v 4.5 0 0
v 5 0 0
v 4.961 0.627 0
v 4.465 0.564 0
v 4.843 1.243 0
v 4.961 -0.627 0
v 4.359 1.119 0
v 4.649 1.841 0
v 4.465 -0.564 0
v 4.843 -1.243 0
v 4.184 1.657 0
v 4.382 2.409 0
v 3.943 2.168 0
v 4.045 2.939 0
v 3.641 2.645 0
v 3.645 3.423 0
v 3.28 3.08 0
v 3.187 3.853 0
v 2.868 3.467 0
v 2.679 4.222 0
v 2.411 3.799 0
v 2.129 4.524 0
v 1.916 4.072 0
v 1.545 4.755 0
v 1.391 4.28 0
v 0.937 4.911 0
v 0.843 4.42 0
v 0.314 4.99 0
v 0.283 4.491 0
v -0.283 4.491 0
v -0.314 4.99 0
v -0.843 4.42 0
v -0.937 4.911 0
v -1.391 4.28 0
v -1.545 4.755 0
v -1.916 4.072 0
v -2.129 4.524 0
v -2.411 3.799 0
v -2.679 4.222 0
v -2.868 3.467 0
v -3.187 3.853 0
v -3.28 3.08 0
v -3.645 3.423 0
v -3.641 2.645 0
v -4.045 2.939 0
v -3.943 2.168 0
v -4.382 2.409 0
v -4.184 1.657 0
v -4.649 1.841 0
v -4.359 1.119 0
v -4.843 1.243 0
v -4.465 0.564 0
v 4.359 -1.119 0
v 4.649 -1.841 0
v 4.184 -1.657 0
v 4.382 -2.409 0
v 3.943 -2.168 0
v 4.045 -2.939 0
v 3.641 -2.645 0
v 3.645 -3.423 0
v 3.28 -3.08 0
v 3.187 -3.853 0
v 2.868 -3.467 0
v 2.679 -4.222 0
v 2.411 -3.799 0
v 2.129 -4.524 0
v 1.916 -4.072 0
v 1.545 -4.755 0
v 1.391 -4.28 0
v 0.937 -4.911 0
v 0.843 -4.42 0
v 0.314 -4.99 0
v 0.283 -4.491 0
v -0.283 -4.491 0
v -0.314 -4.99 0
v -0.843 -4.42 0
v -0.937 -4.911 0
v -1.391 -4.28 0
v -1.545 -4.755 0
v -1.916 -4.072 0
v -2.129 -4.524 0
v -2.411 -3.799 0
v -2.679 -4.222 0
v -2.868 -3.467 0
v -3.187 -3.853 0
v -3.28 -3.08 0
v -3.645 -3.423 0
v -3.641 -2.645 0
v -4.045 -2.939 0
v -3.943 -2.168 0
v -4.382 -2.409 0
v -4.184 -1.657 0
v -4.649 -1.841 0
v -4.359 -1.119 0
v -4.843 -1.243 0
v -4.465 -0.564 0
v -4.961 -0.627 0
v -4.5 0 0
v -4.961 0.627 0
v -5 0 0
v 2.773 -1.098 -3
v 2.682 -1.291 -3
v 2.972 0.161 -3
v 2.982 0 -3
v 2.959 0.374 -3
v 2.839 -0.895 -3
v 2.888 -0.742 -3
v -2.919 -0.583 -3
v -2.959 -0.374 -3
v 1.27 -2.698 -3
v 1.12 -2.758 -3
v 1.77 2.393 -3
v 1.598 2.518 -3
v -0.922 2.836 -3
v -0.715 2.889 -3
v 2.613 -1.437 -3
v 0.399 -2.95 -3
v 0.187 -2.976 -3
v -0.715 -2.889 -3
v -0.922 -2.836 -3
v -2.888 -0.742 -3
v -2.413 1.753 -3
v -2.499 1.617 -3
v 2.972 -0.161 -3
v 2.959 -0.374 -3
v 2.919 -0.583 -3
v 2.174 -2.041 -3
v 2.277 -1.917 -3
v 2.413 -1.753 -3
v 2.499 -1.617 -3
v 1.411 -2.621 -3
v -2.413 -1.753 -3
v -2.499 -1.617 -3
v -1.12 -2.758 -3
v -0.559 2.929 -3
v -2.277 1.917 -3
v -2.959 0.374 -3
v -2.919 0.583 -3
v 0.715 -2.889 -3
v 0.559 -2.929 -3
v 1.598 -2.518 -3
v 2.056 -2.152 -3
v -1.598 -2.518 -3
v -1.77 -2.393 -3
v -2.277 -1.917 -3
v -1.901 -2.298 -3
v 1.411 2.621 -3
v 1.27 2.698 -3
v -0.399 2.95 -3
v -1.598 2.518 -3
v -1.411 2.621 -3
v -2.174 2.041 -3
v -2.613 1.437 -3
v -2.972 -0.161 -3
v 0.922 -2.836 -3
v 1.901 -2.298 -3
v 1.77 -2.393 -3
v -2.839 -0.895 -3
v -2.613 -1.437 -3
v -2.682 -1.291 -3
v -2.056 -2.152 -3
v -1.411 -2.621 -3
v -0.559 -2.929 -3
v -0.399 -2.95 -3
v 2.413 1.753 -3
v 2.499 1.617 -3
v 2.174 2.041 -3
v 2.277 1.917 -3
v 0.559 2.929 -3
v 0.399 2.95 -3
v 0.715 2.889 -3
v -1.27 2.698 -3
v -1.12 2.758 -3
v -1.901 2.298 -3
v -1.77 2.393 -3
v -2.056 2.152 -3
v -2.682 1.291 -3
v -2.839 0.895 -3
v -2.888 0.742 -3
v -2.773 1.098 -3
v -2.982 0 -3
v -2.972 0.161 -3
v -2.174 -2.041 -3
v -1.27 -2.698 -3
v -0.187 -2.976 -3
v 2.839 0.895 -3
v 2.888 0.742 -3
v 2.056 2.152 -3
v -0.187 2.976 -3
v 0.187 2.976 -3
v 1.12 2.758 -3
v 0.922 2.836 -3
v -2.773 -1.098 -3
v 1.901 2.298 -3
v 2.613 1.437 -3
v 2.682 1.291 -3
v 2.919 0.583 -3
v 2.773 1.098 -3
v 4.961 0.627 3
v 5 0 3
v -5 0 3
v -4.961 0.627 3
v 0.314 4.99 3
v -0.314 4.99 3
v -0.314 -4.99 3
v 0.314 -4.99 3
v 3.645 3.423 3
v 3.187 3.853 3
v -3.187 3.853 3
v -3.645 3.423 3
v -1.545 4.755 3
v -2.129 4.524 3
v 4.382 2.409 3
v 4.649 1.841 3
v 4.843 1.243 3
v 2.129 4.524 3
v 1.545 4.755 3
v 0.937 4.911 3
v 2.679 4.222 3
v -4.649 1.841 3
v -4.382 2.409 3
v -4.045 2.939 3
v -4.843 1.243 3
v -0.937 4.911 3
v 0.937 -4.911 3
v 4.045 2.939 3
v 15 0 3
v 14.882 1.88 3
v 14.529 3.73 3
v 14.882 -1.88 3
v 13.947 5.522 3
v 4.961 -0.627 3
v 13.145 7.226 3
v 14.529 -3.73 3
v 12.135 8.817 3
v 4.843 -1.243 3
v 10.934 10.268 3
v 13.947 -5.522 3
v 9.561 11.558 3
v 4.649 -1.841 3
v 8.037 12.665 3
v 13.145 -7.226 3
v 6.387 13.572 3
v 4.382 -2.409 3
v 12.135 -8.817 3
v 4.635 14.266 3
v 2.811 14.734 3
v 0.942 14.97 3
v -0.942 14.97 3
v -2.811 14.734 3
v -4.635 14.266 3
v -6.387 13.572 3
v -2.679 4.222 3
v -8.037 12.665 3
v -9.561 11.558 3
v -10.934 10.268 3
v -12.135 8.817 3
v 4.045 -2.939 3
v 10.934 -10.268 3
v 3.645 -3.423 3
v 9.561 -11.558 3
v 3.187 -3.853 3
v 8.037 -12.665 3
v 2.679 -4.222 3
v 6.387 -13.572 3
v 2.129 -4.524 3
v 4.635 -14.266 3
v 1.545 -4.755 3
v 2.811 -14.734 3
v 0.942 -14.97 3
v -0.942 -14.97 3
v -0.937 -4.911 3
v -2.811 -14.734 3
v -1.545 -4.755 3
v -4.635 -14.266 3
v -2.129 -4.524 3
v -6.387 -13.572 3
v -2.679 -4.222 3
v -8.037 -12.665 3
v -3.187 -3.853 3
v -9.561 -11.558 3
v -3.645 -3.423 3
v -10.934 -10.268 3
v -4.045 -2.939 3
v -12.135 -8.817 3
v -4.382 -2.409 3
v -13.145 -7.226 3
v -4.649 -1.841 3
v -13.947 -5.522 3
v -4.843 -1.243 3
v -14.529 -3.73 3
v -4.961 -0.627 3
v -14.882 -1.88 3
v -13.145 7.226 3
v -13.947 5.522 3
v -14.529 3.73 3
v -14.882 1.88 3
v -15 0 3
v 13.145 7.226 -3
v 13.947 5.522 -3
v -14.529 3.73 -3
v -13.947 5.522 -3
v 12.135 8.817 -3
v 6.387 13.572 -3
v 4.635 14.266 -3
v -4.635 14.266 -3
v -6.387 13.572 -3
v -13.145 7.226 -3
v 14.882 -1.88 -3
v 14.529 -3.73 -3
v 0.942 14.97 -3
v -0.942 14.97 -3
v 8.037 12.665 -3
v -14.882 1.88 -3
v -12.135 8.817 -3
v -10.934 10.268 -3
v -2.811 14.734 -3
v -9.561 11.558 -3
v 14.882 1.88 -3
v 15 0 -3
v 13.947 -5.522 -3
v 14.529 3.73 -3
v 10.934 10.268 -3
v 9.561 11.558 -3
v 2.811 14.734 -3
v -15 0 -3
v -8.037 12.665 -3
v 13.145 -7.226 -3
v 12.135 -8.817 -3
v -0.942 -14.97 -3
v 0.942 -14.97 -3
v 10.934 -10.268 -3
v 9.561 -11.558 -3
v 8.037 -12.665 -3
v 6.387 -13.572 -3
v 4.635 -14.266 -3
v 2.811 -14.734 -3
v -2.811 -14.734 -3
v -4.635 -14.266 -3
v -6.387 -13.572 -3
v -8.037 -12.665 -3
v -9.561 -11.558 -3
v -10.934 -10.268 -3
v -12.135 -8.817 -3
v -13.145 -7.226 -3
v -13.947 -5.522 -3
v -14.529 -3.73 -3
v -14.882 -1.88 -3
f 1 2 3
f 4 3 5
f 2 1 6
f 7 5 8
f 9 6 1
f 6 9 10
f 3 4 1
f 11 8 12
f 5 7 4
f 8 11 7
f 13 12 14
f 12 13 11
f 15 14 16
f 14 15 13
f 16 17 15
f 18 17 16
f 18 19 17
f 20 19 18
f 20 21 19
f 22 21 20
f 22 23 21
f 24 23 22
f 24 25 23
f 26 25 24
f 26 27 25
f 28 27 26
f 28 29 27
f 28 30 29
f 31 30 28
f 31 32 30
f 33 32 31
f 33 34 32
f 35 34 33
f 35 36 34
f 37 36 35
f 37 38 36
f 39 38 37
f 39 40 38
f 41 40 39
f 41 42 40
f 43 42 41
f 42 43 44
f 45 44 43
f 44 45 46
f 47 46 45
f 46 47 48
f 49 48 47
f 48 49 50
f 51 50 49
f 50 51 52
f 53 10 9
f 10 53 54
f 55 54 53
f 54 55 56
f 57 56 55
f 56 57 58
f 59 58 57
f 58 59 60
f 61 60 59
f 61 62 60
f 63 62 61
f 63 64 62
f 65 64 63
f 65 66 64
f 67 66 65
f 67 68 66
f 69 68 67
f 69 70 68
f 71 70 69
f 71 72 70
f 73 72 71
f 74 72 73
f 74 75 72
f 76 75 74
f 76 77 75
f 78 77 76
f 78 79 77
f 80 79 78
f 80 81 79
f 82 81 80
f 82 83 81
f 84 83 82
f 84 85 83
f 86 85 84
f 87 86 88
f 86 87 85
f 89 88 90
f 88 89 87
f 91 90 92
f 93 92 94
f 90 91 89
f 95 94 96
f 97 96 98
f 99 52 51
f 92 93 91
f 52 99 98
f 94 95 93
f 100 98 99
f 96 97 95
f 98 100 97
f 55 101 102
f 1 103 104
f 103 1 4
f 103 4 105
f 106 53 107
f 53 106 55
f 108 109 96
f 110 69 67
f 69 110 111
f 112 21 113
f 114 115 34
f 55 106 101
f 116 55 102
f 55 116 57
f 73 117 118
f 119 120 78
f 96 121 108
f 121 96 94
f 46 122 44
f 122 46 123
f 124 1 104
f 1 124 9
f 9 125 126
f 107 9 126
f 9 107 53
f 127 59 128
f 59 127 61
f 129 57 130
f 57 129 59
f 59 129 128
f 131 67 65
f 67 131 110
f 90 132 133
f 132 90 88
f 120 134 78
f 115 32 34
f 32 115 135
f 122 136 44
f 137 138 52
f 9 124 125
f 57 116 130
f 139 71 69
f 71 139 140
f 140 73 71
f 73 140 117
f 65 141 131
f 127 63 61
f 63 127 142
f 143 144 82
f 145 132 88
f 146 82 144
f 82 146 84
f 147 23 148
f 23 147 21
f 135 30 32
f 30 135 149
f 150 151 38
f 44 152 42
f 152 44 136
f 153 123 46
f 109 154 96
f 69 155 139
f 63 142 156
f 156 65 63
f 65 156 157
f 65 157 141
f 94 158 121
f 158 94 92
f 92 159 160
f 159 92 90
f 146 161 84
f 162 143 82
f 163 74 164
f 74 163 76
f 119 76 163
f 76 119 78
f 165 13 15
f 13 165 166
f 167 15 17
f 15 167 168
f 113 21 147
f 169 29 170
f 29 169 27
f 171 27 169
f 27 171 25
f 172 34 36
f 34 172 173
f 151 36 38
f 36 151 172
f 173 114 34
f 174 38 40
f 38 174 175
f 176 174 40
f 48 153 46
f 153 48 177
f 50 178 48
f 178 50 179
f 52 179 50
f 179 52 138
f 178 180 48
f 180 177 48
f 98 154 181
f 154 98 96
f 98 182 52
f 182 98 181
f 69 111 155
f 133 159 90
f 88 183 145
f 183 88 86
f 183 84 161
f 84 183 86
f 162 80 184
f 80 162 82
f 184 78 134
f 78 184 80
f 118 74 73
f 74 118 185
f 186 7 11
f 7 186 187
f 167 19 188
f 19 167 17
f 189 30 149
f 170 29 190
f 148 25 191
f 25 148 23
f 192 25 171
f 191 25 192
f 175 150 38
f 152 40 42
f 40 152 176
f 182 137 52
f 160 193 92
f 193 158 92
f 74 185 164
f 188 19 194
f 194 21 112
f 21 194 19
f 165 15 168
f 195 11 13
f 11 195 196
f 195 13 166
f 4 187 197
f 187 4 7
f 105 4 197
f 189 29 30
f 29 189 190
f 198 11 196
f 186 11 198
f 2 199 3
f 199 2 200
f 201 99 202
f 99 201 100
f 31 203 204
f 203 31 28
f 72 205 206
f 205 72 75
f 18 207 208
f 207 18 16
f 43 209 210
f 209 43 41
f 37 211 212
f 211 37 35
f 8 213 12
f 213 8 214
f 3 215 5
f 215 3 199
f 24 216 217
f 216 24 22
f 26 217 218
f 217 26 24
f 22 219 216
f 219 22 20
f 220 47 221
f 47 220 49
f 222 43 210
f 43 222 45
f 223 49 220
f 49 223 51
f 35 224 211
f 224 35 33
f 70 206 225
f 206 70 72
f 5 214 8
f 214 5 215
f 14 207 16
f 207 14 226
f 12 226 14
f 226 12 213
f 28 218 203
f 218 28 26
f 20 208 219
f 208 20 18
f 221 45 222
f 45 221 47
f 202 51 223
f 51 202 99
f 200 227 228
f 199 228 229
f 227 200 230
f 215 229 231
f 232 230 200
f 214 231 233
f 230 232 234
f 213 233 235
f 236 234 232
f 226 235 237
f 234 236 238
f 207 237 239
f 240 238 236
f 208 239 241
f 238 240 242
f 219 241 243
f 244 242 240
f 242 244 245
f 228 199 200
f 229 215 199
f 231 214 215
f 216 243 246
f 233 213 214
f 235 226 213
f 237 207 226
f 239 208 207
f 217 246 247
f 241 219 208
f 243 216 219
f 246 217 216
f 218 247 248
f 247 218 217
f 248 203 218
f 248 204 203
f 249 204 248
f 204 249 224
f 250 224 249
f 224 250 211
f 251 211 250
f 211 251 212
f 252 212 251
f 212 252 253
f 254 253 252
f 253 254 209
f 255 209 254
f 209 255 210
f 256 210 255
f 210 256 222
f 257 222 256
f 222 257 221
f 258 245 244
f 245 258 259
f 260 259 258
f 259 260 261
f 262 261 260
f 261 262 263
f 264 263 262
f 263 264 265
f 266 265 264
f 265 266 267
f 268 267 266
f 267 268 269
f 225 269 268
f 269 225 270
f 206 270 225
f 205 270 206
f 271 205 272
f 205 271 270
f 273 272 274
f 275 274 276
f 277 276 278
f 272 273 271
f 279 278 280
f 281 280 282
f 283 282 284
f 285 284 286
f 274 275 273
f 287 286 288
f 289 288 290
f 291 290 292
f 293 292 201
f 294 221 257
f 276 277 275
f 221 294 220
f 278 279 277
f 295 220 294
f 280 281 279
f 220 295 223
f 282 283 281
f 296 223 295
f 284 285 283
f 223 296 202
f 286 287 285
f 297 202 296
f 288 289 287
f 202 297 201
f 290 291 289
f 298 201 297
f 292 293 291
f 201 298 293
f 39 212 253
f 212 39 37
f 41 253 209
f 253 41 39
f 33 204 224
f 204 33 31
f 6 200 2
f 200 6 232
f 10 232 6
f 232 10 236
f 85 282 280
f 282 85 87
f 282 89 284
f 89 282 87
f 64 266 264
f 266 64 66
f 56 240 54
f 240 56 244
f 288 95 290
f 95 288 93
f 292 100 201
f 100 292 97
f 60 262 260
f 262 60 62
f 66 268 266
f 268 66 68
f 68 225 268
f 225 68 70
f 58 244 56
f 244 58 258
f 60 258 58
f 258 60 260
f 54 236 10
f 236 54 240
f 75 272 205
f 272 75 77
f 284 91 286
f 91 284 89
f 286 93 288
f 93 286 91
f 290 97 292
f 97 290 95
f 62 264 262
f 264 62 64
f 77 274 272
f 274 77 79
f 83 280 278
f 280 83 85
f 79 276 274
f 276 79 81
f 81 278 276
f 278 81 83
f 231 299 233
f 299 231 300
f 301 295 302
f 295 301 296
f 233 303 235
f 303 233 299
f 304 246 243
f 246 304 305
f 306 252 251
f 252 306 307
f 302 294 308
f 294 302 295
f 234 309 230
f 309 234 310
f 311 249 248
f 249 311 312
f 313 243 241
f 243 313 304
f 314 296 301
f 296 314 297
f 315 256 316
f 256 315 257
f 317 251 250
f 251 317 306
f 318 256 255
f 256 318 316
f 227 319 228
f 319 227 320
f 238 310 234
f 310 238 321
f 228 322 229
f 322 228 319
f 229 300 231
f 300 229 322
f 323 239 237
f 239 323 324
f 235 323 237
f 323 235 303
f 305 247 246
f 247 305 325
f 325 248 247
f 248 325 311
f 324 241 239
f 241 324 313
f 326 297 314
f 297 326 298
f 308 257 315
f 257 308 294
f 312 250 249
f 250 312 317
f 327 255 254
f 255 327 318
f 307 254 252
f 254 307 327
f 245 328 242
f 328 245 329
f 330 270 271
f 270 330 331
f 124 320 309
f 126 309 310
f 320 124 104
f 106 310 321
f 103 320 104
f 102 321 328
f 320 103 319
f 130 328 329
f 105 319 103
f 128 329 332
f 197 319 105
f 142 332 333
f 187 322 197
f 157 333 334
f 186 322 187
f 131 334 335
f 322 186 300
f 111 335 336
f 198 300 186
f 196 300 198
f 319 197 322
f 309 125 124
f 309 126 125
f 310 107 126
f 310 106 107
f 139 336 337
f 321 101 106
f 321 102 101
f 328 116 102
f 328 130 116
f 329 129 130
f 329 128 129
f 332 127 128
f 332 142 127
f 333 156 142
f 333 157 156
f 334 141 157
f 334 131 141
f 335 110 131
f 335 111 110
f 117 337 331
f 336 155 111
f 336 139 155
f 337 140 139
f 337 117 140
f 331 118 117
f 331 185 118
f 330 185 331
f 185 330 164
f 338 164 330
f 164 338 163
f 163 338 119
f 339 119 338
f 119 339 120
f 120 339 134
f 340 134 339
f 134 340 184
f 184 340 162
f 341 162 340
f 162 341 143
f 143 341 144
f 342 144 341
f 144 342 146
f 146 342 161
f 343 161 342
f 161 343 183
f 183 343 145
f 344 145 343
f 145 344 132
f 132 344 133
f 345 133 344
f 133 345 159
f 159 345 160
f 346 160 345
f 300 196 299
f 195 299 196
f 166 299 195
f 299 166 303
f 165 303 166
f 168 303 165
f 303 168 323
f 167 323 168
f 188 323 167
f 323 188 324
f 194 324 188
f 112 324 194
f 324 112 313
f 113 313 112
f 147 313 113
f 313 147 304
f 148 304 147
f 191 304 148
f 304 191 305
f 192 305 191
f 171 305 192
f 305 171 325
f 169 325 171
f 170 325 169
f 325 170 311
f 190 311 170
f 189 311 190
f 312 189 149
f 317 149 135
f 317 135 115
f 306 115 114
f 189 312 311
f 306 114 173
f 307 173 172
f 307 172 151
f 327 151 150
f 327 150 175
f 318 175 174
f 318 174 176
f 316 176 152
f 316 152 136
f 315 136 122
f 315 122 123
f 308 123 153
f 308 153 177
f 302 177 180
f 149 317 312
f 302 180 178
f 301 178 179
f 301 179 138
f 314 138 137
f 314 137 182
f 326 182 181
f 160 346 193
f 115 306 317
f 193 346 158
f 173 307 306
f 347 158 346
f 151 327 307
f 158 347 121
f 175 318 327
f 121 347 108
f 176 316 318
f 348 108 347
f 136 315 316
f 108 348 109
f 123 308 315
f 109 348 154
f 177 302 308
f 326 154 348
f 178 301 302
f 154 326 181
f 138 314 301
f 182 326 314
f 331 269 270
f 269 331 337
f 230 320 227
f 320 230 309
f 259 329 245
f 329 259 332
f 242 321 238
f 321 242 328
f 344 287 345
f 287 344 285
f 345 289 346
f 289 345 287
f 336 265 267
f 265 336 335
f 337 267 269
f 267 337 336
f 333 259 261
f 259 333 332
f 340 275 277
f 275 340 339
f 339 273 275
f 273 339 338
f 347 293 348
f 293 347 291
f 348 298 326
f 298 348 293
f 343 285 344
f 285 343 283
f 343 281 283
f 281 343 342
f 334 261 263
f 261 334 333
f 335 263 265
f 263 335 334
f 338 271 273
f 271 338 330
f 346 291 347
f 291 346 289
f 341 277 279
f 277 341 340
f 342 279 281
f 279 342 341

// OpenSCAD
$fn = 50;

difference() {
	union() {
		translate(v = [0, 0, -3.0]) {
			cylinder(h = 6, r = 15.0);
		}
	}
	union() {
		translate(v = [0, 0, 0]) {
			rotate(a = [0, 0, 0]) {
				difference() {
					union() {
						translate(v = [0, 0, -6.0]) {
							cylinder(h = 6, r = 2.25);
						}
						translate(v = [0, 0, -4.2]) {
							cylinder(h = 4.2, r1 = 2.375, r2 = 4.5);
						}
						translate(v = [0, 0, -6.0]) {
							cylinder(h = 6, r = 2.375);
						}
						translate(v = [0, 0, -6.0]) {
							cylinder(h = 6, r = 2.25);
						}
					}
					union();
				}
			}
		}
		#cylinder(h = 3, r = 5.0);
	}
}
